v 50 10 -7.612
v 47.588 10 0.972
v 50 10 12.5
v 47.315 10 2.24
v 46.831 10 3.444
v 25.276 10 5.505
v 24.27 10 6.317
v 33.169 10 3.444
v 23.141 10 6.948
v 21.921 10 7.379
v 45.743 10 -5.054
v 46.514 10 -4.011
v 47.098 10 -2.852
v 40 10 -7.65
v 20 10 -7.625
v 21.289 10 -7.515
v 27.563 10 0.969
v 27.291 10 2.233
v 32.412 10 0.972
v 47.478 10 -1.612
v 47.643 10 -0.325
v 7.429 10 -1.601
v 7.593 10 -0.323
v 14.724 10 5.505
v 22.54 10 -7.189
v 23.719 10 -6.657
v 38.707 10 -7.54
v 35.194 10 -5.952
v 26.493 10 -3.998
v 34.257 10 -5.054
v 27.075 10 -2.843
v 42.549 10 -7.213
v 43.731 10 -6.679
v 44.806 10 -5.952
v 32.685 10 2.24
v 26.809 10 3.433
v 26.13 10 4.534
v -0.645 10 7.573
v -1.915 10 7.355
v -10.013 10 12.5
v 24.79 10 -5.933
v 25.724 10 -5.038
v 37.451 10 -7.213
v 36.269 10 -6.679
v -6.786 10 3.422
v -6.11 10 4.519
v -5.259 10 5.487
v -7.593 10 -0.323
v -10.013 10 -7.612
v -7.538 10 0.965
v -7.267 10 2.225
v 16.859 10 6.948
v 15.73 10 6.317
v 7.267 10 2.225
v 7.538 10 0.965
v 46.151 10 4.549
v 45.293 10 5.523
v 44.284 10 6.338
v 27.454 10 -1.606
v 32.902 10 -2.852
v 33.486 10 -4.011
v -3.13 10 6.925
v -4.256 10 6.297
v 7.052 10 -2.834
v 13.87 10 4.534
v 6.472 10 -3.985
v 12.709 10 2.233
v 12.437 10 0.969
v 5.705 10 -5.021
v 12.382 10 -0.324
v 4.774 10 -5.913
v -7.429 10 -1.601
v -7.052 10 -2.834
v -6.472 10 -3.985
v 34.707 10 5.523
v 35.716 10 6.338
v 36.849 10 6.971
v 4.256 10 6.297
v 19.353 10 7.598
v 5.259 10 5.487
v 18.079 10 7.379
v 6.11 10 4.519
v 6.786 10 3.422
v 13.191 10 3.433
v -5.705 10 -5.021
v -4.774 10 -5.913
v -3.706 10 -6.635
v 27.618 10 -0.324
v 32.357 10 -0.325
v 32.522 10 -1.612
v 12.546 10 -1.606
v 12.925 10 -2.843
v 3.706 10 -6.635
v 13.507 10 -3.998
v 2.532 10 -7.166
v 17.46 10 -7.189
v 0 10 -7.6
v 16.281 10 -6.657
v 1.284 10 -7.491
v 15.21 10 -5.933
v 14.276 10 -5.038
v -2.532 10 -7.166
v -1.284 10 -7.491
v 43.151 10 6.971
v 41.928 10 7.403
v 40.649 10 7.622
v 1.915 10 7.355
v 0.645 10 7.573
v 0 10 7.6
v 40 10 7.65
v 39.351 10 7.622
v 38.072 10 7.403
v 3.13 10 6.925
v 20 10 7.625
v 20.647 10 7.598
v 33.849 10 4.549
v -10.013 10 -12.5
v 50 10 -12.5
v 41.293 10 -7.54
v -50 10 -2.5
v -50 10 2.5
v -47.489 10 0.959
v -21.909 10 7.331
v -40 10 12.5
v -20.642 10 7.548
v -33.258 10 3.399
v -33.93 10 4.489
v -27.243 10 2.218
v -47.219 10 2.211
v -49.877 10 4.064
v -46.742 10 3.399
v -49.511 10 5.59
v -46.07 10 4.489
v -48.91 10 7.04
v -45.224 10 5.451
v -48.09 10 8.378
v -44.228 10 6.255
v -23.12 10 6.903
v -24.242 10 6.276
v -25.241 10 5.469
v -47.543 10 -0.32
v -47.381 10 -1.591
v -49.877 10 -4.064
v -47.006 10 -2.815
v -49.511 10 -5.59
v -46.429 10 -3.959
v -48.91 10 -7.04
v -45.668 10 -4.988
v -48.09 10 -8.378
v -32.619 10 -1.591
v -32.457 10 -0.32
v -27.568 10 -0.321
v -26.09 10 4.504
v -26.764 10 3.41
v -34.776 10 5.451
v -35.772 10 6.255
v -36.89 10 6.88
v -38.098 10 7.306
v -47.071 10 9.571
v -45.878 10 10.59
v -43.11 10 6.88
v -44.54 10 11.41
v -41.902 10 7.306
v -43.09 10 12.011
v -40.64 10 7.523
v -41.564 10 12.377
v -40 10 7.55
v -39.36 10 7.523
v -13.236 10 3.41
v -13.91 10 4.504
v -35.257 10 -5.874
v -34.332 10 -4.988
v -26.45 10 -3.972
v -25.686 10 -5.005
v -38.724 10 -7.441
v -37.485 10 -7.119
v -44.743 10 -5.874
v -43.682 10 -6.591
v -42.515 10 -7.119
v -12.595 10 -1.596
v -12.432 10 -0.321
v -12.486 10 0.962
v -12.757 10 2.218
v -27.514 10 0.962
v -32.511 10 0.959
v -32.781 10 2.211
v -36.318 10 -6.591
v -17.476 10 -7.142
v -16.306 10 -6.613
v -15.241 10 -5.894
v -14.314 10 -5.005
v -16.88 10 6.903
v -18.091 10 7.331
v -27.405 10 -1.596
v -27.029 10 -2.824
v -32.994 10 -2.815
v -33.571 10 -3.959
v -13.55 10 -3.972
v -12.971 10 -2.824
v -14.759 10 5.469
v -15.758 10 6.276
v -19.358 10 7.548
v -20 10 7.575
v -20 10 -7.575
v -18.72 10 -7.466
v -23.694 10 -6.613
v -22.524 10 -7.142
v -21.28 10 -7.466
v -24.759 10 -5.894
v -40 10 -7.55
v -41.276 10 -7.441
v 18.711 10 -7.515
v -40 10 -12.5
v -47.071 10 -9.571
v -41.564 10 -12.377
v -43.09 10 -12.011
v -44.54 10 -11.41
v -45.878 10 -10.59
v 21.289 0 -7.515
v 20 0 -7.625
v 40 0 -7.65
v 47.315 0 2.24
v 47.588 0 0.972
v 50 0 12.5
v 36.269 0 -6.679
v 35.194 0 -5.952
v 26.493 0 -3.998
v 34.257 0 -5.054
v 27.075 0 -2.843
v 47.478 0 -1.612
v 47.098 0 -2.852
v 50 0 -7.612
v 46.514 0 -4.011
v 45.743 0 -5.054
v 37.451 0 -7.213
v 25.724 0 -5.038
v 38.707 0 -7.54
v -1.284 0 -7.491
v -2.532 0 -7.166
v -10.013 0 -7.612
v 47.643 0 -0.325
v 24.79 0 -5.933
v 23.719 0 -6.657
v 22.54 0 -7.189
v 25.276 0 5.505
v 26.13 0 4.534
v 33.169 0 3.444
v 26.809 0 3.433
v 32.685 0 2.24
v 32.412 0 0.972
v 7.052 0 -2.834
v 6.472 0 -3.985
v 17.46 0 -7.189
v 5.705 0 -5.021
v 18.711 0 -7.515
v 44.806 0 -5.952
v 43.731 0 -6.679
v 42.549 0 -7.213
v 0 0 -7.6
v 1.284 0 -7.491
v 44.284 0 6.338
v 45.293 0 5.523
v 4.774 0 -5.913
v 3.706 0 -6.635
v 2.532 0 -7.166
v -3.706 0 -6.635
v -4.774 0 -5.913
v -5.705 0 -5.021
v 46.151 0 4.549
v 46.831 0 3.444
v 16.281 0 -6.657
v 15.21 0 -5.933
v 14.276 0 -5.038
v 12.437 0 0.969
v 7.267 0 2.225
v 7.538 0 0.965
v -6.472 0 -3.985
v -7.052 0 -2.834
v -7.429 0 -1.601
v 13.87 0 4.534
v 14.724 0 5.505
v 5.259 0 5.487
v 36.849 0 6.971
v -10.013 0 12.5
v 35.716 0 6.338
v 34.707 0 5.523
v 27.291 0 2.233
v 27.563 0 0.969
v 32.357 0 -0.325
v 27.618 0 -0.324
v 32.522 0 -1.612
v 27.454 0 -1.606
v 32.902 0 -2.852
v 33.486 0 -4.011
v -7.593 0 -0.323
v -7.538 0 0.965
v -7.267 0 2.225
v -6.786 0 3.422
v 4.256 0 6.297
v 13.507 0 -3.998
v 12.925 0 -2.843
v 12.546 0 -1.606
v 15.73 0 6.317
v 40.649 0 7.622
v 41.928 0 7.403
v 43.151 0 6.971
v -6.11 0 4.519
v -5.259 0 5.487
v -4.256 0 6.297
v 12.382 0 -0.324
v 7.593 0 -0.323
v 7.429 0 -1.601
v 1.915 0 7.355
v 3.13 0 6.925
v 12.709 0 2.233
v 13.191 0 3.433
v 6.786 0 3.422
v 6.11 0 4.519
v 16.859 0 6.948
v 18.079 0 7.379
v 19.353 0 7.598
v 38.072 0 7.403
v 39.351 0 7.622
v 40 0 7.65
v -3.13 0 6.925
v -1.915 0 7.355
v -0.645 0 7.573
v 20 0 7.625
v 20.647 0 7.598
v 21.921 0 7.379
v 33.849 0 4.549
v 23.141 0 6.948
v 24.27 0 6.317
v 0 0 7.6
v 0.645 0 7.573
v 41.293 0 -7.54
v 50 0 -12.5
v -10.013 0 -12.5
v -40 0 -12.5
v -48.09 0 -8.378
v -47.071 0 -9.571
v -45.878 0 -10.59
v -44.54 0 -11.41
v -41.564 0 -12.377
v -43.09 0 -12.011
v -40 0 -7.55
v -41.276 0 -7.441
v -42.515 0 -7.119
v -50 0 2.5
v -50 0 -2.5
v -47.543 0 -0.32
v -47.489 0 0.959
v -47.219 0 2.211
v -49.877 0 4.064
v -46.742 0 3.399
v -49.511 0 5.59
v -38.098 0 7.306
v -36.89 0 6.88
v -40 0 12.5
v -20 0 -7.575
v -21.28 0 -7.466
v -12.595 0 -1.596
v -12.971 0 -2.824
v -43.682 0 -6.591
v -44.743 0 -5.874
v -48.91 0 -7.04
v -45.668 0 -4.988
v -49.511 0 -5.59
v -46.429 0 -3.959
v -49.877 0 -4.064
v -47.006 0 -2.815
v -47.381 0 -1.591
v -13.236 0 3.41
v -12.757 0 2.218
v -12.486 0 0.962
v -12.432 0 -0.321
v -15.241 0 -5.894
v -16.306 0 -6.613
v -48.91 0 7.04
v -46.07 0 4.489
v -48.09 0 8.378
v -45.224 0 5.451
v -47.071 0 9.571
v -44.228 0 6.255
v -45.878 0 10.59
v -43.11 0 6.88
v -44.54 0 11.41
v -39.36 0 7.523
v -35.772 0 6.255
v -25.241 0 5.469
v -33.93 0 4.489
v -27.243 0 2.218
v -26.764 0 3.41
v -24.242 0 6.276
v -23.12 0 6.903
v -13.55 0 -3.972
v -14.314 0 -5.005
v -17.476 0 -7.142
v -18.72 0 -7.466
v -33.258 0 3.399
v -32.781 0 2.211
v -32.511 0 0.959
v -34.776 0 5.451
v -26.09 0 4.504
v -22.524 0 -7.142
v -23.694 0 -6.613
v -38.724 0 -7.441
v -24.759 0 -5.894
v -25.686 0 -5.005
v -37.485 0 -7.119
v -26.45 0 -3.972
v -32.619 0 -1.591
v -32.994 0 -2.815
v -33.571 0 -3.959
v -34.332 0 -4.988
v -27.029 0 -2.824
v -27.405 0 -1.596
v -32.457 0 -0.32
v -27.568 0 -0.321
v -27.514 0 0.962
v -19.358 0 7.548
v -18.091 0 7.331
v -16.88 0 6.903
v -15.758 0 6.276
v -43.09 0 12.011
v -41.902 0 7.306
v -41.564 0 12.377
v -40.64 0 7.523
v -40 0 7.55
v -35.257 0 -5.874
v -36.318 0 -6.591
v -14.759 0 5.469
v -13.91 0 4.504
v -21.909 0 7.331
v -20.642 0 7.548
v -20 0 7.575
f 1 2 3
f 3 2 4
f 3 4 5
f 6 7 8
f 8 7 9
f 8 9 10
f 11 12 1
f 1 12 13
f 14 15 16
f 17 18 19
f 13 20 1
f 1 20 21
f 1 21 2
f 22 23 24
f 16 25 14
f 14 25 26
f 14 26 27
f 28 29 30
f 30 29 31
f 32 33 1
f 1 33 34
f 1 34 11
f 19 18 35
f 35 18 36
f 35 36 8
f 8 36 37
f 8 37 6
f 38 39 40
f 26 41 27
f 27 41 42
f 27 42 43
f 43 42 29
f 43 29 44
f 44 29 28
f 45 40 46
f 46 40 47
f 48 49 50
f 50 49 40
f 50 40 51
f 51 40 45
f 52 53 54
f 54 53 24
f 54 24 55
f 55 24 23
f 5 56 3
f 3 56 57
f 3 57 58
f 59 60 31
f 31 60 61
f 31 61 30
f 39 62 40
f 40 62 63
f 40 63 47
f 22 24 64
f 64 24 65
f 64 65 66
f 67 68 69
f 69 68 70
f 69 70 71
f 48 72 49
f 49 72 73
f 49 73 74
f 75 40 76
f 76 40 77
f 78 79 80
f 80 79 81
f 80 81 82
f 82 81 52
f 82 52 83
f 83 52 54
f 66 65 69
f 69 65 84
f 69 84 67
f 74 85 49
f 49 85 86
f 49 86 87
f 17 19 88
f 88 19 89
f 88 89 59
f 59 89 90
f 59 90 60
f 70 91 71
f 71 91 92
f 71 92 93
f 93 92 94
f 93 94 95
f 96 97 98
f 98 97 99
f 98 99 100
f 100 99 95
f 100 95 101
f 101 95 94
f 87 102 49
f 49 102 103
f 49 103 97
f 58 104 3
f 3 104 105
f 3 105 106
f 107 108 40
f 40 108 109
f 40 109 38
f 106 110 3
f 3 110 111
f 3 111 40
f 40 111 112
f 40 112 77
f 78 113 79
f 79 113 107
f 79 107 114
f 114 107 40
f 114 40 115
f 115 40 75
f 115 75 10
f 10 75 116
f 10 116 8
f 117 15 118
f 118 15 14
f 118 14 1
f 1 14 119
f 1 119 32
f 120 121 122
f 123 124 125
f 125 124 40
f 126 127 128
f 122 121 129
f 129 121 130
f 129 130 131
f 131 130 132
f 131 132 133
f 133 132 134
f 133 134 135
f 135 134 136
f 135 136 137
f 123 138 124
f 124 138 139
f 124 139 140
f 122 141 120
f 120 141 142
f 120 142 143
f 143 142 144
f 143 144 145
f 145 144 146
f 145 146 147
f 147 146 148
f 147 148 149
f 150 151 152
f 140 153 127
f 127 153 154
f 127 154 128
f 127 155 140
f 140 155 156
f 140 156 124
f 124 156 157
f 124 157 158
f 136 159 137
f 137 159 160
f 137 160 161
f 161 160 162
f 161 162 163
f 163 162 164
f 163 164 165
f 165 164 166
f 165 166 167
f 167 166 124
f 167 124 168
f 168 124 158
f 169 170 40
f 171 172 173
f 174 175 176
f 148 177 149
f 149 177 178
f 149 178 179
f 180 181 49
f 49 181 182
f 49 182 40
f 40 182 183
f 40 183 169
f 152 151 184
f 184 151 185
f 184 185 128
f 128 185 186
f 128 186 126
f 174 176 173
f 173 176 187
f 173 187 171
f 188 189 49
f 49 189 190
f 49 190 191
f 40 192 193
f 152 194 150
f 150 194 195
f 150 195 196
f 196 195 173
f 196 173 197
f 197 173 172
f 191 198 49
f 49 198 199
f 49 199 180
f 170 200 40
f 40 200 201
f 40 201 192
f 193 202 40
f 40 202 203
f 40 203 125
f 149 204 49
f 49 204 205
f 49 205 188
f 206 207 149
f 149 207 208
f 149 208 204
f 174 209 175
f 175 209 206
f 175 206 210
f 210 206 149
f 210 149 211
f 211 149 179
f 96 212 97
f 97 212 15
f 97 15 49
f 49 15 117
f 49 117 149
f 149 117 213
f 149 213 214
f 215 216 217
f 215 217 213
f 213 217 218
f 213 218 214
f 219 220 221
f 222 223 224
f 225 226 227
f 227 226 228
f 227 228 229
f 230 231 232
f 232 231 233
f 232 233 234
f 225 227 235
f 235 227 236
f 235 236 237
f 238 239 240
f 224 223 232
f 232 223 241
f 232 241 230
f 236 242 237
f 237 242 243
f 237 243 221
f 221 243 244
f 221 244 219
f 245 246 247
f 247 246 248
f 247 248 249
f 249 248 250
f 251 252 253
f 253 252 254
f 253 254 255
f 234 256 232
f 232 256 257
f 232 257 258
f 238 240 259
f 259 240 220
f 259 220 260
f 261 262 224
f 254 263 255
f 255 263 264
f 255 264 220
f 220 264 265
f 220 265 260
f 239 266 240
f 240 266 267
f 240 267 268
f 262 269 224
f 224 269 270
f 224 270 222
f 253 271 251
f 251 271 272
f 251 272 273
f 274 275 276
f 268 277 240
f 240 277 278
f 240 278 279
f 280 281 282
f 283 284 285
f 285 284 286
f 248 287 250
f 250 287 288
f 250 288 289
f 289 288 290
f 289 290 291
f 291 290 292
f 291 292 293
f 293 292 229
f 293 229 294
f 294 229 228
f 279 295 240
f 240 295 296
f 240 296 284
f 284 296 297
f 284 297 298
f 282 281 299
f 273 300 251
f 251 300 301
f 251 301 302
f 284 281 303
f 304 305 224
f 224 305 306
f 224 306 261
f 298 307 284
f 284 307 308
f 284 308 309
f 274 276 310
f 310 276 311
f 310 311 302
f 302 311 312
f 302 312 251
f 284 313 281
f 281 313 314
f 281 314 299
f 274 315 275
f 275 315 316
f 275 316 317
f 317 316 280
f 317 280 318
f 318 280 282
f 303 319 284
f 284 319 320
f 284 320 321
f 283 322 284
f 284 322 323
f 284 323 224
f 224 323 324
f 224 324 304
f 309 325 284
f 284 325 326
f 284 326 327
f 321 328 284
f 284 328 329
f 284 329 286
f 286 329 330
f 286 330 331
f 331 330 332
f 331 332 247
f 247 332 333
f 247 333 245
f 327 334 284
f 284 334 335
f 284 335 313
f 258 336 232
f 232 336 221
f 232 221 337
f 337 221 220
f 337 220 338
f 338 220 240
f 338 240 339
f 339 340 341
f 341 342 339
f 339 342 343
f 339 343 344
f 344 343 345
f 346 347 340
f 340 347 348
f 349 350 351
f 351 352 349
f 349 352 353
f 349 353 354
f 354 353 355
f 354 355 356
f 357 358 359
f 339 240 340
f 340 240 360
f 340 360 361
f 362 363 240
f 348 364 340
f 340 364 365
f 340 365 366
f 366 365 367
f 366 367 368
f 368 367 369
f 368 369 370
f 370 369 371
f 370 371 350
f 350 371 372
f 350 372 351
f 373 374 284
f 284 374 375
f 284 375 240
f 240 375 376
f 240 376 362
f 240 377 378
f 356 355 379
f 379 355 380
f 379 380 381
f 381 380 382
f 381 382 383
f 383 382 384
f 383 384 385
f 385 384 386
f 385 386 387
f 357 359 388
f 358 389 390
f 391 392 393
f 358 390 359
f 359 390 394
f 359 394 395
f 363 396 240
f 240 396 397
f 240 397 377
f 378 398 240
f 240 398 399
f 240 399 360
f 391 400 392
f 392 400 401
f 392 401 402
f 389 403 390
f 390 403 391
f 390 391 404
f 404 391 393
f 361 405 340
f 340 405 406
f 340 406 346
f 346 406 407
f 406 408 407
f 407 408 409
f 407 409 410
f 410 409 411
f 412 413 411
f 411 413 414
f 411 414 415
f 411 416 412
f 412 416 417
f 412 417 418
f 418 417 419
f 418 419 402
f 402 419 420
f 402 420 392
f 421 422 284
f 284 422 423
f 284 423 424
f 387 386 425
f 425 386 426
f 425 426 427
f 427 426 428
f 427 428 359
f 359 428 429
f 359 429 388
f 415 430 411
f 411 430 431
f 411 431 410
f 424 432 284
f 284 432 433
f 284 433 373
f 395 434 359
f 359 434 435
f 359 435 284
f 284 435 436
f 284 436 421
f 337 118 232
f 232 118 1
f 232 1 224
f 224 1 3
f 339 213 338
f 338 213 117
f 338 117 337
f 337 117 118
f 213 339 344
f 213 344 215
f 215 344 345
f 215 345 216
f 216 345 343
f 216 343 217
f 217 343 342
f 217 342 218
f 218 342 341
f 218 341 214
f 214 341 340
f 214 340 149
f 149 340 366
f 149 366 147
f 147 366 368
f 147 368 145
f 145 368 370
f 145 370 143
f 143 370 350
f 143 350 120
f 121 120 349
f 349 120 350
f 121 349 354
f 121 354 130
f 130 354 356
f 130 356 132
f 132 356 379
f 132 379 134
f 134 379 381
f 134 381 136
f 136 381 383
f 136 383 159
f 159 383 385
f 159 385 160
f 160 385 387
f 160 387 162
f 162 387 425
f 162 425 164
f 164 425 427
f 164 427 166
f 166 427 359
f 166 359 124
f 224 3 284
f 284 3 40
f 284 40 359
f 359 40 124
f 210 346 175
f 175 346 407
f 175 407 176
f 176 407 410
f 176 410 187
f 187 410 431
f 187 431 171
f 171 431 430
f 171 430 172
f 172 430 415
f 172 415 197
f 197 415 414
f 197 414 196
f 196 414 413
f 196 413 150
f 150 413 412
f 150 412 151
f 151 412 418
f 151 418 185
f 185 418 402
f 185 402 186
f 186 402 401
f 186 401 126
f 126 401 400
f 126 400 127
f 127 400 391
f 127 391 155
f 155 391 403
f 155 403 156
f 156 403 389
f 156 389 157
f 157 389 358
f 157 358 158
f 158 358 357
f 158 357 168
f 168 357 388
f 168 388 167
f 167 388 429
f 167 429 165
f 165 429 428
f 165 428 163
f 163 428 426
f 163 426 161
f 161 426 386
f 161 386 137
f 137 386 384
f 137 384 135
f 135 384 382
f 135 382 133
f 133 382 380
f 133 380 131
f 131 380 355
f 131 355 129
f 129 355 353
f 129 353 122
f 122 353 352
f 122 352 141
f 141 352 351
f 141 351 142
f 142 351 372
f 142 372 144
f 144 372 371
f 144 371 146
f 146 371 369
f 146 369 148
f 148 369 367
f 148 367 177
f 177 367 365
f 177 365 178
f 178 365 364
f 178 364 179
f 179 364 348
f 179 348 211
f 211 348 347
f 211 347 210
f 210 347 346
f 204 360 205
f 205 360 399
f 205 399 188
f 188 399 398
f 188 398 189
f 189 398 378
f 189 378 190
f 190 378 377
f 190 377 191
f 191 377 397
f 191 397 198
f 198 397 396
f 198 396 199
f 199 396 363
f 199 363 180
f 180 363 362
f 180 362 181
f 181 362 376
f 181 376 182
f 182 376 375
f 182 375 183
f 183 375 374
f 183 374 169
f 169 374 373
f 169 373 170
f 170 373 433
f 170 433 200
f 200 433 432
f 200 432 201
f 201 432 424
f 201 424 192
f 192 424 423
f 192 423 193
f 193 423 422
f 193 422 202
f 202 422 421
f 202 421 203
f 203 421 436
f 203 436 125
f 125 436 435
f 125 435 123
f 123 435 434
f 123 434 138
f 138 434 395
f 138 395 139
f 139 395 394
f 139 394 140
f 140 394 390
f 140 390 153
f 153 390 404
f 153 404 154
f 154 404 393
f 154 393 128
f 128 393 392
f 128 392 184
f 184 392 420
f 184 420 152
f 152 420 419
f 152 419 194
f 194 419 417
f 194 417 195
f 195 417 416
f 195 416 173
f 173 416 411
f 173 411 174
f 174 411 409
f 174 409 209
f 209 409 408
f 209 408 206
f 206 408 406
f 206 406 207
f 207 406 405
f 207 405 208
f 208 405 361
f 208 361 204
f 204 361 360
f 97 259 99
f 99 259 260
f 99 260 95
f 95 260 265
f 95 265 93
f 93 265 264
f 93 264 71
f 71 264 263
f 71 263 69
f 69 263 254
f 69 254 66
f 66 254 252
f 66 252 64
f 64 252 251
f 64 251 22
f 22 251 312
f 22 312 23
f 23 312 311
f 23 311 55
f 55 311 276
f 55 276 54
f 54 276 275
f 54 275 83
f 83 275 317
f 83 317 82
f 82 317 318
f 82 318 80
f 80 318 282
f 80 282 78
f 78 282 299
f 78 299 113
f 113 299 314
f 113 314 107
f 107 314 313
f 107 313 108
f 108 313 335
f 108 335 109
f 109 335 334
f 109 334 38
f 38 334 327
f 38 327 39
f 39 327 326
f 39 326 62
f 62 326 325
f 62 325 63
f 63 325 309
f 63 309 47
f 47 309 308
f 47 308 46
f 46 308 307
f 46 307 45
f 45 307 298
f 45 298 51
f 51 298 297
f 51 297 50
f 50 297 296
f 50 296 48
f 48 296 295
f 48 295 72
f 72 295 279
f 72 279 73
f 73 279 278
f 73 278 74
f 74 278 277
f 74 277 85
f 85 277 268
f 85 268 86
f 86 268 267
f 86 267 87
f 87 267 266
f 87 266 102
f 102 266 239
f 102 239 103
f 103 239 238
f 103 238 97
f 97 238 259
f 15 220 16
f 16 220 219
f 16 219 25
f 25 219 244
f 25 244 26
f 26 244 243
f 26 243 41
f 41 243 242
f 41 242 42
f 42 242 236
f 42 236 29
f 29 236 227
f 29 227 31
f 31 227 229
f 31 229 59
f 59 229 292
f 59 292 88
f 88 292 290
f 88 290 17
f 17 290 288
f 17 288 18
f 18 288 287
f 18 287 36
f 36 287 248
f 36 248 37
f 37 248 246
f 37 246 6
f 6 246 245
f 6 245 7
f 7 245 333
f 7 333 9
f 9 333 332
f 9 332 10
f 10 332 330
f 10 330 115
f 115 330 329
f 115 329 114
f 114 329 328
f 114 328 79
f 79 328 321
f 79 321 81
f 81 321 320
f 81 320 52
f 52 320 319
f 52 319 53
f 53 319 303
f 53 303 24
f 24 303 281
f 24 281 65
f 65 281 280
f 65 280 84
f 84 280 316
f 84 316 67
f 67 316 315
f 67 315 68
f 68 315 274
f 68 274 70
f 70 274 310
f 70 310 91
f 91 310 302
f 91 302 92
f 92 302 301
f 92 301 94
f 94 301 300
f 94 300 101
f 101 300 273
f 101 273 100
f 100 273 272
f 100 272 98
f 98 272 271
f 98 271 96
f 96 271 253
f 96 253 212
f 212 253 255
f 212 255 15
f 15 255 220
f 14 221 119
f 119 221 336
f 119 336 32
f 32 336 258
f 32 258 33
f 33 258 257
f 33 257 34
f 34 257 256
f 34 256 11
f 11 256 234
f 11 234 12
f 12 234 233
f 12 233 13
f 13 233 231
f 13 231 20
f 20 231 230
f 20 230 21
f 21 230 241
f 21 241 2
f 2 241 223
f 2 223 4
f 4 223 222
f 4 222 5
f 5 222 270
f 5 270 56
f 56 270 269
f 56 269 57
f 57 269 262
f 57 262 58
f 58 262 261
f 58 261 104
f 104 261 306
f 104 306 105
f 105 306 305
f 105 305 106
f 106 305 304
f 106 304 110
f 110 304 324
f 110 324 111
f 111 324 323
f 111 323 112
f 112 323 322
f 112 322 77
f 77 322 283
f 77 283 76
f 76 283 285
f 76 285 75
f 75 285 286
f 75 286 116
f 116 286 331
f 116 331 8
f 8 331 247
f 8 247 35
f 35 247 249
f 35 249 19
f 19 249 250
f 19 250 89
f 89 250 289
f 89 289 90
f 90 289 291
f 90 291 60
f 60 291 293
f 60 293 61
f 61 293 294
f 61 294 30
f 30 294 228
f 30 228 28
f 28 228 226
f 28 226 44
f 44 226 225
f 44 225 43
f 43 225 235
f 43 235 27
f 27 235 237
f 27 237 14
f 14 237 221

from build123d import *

# Parameters (mm, degrees)
SKETCH1_R           = 7.55
SKETCH1_R_2         = 7.575
SKETCH1_R_3         = 7.6
SKETCH1_R_4         = 7.625
SKETCH1_R_5         = 7.65
BOSS_EXTRUDE1_DEPTH = 10


with BuildPart() as part:
    # Sketch1 → Boss-Extrude1 (new body)
    with BuildSketch(Plane(origin=(0, 0, 0), x_dir=(1, 0, 0), z_dir=(0, 1, 0))):
        with BuildLine():
            Line((-40, 12.5), (50, 12.5))
            Line((50, 12.5), (50, -12.5))
            Line((50, -12.5), (-40, -12.5))
            ThreePointArc((-40, -12.5), (-47.071067812, -9.571067812), (-50, -2.5))
            Line((-50, -2.5), (-50, 2.5))
            ThreePointArc((-50, 2.5), (-47.071067812, 9.571067812), (-40, 12.5))
        make_face()
        with Locations(Location((-40, 0, 0), (0, 0, 270))):
            Circle(SKETCH1_R, mode=Mode.SUBTRACT)
        with Locations(Location((-20, 0, 0), (0, 0, 270))):
            Circle(SKETCH1_R_2, mode=Mode.SUBTRACT)
        with Locations(Location((0, 0, 0), (0, 0, 270))):
            Circle(SKETCH1_R_3, mode=Mode.SUBTRACT)
        with Locations(Location((20, 0, 0), (0, 0, 270))):
            Circle(SKETCH1_R_4, mode=Mode.SUBTRACT)
        with Locations(Location((40, 0, 0), (0, 0, 270))):
            Circle(SKETCH1_R_5, mode=Mode.SUBTRACT)
    extrude(amount=BOSS_EXTRUDE1_DEPTH)


solid = part.part
